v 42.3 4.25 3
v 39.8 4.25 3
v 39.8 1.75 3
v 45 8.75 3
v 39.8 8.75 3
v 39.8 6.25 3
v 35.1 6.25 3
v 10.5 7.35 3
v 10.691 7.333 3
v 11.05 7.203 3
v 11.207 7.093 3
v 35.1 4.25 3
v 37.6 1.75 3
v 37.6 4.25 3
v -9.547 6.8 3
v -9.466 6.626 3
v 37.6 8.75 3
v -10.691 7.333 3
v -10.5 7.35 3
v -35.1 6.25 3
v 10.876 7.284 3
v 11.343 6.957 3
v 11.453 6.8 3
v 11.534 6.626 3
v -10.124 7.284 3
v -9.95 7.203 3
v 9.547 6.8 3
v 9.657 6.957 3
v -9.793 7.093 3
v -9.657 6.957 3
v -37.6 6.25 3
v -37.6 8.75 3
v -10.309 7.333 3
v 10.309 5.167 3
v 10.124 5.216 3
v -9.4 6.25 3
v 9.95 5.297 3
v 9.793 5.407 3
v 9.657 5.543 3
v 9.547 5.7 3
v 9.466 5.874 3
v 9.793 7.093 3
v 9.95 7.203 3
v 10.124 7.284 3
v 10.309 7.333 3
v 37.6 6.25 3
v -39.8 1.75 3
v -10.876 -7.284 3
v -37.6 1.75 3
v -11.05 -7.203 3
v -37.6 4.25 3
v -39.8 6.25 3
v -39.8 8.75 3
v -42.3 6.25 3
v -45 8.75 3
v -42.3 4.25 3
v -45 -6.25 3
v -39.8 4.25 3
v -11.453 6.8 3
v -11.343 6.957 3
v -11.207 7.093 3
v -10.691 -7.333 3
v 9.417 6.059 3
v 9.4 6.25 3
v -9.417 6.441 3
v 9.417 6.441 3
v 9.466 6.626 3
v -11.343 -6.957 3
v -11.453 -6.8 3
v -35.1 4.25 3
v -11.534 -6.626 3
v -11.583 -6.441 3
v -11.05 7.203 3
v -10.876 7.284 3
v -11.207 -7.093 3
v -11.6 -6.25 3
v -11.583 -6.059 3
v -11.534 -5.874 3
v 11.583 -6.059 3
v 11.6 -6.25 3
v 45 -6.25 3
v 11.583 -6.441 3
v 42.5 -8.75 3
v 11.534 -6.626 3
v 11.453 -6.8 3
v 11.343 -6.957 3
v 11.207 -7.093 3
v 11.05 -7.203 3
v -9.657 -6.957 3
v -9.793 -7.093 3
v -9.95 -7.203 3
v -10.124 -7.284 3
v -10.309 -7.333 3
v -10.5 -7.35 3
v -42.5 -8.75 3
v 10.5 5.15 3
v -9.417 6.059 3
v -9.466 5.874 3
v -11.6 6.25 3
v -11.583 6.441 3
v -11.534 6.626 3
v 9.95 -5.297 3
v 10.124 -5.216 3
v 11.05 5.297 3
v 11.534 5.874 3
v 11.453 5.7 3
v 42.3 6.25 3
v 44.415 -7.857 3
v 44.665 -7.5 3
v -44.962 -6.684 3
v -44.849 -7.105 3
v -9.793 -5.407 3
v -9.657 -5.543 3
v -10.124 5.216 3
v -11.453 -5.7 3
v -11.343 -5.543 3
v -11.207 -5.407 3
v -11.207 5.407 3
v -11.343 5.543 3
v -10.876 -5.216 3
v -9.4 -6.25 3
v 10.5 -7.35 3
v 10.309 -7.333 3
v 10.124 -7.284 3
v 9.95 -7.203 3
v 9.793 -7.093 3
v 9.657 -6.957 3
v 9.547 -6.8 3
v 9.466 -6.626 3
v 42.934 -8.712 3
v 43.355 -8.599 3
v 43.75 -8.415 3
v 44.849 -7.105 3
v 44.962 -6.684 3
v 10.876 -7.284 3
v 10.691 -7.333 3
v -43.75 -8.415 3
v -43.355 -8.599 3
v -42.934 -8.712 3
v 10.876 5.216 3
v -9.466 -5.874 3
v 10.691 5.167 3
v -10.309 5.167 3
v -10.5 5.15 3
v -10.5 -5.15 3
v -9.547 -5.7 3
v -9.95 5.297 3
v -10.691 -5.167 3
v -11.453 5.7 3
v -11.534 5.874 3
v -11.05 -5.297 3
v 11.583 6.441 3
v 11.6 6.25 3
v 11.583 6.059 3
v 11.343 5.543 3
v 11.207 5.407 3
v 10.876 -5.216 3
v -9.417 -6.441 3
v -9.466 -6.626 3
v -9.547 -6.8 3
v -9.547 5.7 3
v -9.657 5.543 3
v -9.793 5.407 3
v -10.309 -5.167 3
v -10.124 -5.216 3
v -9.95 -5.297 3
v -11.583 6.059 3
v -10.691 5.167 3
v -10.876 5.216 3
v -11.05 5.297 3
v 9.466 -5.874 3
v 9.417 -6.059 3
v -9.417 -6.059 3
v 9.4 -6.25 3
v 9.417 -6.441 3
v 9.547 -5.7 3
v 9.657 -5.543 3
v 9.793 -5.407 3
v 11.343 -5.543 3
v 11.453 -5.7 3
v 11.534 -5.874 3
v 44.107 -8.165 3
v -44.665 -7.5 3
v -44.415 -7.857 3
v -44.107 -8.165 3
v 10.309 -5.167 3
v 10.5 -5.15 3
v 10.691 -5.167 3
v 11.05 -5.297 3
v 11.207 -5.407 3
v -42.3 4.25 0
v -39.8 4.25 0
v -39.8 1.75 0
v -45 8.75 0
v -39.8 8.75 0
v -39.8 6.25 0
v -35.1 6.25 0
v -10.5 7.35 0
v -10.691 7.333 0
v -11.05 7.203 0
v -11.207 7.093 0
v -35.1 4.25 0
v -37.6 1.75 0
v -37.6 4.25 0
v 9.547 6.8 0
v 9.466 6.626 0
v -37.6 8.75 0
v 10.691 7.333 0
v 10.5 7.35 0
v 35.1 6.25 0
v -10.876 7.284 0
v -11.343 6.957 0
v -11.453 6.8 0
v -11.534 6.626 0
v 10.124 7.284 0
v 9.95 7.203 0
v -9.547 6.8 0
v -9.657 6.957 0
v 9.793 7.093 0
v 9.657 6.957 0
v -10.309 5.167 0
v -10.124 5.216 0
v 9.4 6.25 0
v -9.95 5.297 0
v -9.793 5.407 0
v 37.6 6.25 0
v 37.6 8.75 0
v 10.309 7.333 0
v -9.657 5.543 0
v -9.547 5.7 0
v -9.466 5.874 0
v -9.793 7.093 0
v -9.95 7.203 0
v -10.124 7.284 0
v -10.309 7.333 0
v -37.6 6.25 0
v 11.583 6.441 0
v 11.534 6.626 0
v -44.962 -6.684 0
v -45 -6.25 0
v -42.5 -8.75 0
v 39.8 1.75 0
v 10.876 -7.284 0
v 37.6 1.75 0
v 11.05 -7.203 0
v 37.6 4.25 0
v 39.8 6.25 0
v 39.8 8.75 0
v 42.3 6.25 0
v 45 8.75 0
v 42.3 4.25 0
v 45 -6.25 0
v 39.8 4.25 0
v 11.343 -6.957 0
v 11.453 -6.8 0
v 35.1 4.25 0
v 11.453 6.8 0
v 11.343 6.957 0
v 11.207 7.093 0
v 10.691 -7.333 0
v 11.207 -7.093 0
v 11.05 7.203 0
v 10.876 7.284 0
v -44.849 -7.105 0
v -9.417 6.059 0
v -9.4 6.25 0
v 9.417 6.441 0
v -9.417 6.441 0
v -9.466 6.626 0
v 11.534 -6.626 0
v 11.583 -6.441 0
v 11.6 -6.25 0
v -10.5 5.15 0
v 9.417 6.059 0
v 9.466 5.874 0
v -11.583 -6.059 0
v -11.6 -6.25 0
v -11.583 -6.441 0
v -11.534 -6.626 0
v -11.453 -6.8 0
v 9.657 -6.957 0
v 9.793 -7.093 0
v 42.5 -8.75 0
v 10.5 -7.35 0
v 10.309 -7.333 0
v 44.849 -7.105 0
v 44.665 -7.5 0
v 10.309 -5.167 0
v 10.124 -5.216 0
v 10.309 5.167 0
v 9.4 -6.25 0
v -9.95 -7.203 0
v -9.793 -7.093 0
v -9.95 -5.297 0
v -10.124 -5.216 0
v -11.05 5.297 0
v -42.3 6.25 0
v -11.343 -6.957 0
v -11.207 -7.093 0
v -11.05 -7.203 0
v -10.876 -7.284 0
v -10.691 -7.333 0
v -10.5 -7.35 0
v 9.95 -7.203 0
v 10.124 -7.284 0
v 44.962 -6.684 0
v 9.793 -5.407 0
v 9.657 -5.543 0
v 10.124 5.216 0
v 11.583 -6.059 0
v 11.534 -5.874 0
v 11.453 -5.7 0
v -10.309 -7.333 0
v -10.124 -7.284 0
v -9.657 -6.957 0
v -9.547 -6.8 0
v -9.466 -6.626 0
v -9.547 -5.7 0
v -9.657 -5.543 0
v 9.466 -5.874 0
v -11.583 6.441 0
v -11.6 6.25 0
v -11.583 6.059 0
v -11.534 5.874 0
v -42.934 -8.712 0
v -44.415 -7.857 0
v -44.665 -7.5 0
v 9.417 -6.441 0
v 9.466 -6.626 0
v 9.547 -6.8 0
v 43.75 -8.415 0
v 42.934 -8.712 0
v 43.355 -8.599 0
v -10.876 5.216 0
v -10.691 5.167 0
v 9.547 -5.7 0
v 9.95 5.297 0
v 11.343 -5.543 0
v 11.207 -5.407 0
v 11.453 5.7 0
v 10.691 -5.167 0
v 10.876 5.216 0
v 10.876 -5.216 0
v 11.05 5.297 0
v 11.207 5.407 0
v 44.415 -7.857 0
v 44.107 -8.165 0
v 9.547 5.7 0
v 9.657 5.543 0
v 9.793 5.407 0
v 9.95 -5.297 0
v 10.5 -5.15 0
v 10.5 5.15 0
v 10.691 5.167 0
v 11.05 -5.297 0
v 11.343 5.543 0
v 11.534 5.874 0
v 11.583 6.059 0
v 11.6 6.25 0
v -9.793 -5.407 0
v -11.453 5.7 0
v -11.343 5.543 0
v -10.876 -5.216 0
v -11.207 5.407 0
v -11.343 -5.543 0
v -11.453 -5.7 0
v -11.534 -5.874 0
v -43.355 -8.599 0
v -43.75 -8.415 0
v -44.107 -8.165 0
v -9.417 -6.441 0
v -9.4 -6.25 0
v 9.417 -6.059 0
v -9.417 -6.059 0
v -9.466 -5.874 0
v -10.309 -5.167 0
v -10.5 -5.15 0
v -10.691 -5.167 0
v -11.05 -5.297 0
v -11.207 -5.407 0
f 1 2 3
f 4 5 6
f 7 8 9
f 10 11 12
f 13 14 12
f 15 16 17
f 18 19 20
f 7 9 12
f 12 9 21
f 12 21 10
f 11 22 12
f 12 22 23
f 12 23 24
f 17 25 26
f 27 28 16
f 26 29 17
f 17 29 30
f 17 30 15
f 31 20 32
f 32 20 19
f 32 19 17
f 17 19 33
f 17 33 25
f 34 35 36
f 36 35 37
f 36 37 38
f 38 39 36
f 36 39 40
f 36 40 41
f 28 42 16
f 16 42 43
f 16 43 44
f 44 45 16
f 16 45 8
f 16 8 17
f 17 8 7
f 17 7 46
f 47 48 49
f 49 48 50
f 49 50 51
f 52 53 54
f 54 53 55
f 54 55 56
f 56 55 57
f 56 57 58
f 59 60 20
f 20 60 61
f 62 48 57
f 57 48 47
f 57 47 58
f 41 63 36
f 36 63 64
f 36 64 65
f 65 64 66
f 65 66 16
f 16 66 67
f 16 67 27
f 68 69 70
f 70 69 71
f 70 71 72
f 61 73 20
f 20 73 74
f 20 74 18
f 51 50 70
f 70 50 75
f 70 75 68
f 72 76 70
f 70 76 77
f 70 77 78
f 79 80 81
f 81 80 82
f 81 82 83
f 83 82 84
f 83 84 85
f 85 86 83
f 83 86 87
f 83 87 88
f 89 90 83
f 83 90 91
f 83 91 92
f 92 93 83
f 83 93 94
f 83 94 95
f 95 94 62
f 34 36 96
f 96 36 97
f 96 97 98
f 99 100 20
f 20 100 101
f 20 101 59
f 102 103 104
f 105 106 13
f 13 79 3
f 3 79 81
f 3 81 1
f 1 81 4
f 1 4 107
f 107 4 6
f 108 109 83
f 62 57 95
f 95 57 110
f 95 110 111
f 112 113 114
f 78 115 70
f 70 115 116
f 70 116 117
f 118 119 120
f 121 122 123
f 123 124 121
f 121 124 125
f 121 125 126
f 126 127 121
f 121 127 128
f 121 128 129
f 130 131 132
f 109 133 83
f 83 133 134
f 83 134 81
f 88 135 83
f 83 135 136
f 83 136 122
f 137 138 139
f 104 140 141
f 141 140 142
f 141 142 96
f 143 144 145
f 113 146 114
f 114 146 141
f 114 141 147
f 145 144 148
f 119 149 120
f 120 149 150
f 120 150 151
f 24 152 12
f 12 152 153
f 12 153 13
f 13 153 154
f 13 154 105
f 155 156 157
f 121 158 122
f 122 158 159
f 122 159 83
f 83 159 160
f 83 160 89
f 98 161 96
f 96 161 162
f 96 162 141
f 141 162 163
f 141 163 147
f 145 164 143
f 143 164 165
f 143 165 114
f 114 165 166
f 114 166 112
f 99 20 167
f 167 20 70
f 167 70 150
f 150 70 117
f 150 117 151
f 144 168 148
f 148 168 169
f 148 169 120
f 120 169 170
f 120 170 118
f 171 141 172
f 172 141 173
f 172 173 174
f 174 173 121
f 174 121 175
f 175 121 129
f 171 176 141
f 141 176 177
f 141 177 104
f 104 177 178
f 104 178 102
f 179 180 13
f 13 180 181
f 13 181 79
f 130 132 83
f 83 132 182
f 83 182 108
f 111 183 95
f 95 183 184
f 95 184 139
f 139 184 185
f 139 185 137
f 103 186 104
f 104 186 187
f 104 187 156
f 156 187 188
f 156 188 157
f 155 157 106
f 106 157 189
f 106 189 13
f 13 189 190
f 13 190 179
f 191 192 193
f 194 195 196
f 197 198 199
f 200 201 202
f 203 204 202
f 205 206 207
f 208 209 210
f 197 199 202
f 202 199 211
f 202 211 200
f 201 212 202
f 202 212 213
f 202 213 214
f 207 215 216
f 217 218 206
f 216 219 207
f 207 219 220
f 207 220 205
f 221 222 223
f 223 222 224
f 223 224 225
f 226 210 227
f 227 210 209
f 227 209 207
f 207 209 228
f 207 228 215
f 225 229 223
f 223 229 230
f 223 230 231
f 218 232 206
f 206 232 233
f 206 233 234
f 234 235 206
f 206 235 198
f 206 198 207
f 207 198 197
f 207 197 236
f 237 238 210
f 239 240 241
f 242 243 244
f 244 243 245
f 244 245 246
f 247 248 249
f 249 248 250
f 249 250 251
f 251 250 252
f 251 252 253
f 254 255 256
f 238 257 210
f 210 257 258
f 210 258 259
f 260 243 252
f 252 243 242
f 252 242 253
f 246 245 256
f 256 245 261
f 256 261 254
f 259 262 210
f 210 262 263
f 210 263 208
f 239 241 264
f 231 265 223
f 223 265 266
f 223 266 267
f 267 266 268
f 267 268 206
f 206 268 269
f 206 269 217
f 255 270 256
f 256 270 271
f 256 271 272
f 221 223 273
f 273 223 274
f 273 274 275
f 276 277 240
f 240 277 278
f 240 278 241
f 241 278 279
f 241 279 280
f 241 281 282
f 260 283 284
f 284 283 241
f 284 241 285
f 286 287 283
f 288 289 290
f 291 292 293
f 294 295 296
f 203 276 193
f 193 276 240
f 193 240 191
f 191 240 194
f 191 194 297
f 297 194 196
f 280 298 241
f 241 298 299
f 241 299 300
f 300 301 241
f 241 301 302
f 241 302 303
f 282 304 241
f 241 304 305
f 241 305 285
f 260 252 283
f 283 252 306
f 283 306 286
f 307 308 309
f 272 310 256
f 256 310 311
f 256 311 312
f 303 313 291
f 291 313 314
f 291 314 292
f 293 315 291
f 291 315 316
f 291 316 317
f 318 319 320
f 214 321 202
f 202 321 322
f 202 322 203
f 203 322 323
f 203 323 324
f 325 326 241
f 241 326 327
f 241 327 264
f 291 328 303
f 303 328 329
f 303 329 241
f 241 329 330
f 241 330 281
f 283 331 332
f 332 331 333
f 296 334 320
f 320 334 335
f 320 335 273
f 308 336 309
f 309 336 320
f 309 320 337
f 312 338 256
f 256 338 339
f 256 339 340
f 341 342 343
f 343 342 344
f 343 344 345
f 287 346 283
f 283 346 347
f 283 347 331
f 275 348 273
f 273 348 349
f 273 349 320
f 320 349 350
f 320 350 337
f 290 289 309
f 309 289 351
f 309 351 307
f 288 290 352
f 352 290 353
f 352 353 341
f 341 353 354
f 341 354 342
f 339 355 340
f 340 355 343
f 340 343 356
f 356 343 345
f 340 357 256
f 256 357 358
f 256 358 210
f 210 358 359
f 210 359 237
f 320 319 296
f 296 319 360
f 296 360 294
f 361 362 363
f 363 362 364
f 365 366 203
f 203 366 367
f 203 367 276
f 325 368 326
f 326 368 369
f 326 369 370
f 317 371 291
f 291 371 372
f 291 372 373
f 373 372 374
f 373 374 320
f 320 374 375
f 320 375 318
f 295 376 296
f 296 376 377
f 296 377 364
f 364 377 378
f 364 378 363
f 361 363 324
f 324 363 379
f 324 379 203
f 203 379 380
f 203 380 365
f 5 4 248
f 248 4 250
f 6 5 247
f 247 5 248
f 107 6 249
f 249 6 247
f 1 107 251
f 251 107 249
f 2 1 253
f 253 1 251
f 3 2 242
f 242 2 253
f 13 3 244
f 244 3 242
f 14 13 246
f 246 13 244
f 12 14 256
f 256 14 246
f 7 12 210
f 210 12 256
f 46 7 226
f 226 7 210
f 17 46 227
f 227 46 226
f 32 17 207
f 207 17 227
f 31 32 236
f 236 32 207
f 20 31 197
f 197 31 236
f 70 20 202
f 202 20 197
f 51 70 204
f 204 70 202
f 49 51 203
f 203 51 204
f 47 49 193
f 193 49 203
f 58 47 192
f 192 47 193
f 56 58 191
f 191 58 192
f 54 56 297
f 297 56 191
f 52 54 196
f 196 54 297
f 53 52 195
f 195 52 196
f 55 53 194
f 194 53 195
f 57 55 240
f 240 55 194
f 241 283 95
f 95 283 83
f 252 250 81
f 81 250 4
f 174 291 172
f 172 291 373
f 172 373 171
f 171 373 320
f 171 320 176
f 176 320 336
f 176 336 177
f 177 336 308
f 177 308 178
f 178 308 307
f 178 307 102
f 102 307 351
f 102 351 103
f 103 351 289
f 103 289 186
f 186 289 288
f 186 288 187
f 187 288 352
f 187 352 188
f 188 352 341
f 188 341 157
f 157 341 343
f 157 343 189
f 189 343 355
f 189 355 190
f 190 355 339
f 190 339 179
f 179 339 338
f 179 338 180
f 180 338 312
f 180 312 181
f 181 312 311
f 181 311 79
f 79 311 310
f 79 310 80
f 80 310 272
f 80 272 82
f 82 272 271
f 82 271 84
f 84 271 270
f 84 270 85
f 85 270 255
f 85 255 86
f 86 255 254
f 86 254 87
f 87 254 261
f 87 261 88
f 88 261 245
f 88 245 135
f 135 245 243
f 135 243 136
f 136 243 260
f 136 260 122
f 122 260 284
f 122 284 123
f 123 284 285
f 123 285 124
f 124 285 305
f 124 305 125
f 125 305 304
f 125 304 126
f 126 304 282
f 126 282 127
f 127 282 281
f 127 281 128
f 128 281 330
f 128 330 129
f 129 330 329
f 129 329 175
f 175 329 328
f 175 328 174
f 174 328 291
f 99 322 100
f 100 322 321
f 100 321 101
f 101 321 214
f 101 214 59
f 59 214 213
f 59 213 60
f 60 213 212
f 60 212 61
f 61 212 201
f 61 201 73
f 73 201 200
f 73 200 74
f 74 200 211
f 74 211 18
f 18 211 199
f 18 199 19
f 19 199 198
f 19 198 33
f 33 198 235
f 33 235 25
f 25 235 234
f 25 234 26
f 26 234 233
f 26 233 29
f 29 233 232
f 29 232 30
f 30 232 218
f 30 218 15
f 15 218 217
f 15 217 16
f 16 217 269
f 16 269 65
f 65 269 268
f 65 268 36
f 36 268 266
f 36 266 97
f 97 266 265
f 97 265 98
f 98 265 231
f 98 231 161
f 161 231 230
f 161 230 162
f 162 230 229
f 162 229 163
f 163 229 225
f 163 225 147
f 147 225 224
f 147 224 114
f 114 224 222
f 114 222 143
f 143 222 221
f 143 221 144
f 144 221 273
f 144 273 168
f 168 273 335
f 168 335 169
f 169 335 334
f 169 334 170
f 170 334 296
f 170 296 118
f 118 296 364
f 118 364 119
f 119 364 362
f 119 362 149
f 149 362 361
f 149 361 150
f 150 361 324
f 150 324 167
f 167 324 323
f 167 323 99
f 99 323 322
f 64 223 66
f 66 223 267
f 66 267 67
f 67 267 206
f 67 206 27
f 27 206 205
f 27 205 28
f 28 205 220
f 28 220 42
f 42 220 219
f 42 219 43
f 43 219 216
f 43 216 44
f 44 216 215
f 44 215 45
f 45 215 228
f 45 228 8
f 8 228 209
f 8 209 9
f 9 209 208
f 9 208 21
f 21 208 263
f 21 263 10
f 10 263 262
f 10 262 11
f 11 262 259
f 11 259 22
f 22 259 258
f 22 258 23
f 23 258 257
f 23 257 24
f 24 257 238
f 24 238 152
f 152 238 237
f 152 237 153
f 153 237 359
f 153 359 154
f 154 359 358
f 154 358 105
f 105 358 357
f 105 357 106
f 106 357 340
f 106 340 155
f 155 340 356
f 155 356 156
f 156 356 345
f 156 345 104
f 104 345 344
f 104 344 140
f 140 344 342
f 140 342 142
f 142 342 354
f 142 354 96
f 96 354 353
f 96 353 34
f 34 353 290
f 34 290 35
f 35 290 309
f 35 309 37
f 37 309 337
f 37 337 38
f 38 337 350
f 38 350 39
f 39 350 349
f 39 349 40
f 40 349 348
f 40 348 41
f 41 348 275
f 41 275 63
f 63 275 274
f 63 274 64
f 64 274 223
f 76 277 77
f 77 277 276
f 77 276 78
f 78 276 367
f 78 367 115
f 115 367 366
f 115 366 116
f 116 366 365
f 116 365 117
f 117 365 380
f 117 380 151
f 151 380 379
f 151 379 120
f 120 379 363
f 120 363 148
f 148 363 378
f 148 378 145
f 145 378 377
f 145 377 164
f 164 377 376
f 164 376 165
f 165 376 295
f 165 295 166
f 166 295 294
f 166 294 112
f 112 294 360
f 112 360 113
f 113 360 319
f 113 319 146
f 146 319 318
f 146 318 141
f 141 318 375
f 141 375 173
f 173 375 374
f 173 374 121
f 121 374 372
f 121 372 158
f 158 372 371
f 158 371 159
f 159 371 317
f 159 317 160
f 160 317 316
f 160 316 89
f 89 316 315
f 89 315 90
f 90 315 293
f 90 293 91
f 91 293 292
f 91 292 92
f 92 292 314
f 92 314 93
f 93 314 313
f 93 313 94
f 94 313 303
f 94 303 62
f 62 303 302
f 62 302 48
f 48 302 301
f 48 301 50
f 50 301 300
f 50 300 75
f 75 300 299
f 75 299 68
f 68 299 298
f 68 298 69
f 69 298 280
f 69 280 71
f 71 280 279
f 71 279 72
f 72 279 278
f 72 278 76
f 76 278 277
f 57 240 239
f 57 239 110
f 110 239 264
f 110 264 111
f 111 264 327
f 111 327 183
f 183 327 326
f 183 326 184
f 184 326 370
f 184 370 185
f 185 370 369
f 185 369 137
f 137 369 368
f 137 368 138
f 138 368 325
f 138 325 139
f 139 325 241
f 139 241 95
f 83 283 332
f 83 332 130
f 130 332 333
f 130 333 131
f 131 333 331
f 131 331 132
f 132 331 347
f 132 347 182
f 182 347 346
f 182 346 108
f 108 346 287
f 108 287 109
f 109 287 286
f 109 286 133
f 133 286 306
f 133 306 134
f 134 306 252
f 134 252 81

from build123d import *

# Parameters (mm, degrees)
SKETCH1_R           = 1.1
BOSS_EXTRUDE1_DEPTH = 3
FILLET1_R           = 2.5


with BuildPart() as part:
    # Sketch1 → Boss-Extrude1 (new body)
    with BuildSketch(Plane.XY):
        Polygon((-45, -8.75), (45, -8.75), (45, 8.75), (39.8, 8.75), (39.8, 6.25), (42.3, 6.25), (42.3, 4.25), (39.8, 4.25), (39.8, 1.75), (37.6, 1.75), (37.6, 4.25), (35.1, 4.25), (35.1, 6.25), (37.6, 6.25), (37.6, 8.75), (-37.6, 8.75), (-37.6, 6.25), (-35.1, 6.25), (-35.1, 4.25), (-37.6, 4.25), (-37.6, 1.75), (-39.8, 1.75), (-39.8, 4.25), (-42.3, 4.25), (-42.3, 6.25), (-39.8, 6.25), (-39.8, 8.75), (-45, 8.75), align=None)
        with Locations((-10.5, 6.25)):
            Circle(SKETCH1_R, mode=Mode.SUBTRACT)
        with Locations(Location((-10.5, -6.25, 0), (0, 0, 180))):
            Circle(SKETCH1_R, mode=Mode.SUBTRACT)
        with Locations((10.5, -6.25)):
            Circle(SKETCH1_R, mode=Mode.SUBTRACT)
        with Locations(Location((10.5, 6.25, 0), (0, 0, 180))):
            Circle(SKETCH1_R, mode=Mode.SUBTRACT)
    extrude(amount=BOSS_EXTRUDE1_DEPTH)

    # Fillet1
    fillet1_edges = [part.edges().sort_by_distance(p)[0] for p in [
        (45, -8.75, 1.5),
        (-45, -8.75, 1.5),
    ]]
    fillet(fillet1_edges, radius=FILLET1_R)


solid = part.part
